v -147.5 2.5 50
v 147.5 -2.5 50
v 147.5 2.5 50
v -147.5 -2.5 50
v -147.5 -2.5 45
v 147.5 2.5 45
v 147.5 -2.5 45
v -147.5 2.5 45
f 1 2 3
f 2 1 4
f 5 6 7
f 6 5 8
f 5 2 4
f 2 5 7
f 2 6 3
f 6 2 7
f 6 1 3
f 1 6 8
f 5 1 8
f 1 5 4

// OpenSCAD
$rows = 9; // along the y-axis
$cols = 13; // along the x-axis

$m = $cols-1;
$n = $rows-1;

module xbeam() {
    color([0.7,0.7,0.1],0.9)
    translate([0,0,50-2.5]) {
        cube([$cols*5*2+50+15+100, 5, 5], center=true);
    }
}

xbeam();
